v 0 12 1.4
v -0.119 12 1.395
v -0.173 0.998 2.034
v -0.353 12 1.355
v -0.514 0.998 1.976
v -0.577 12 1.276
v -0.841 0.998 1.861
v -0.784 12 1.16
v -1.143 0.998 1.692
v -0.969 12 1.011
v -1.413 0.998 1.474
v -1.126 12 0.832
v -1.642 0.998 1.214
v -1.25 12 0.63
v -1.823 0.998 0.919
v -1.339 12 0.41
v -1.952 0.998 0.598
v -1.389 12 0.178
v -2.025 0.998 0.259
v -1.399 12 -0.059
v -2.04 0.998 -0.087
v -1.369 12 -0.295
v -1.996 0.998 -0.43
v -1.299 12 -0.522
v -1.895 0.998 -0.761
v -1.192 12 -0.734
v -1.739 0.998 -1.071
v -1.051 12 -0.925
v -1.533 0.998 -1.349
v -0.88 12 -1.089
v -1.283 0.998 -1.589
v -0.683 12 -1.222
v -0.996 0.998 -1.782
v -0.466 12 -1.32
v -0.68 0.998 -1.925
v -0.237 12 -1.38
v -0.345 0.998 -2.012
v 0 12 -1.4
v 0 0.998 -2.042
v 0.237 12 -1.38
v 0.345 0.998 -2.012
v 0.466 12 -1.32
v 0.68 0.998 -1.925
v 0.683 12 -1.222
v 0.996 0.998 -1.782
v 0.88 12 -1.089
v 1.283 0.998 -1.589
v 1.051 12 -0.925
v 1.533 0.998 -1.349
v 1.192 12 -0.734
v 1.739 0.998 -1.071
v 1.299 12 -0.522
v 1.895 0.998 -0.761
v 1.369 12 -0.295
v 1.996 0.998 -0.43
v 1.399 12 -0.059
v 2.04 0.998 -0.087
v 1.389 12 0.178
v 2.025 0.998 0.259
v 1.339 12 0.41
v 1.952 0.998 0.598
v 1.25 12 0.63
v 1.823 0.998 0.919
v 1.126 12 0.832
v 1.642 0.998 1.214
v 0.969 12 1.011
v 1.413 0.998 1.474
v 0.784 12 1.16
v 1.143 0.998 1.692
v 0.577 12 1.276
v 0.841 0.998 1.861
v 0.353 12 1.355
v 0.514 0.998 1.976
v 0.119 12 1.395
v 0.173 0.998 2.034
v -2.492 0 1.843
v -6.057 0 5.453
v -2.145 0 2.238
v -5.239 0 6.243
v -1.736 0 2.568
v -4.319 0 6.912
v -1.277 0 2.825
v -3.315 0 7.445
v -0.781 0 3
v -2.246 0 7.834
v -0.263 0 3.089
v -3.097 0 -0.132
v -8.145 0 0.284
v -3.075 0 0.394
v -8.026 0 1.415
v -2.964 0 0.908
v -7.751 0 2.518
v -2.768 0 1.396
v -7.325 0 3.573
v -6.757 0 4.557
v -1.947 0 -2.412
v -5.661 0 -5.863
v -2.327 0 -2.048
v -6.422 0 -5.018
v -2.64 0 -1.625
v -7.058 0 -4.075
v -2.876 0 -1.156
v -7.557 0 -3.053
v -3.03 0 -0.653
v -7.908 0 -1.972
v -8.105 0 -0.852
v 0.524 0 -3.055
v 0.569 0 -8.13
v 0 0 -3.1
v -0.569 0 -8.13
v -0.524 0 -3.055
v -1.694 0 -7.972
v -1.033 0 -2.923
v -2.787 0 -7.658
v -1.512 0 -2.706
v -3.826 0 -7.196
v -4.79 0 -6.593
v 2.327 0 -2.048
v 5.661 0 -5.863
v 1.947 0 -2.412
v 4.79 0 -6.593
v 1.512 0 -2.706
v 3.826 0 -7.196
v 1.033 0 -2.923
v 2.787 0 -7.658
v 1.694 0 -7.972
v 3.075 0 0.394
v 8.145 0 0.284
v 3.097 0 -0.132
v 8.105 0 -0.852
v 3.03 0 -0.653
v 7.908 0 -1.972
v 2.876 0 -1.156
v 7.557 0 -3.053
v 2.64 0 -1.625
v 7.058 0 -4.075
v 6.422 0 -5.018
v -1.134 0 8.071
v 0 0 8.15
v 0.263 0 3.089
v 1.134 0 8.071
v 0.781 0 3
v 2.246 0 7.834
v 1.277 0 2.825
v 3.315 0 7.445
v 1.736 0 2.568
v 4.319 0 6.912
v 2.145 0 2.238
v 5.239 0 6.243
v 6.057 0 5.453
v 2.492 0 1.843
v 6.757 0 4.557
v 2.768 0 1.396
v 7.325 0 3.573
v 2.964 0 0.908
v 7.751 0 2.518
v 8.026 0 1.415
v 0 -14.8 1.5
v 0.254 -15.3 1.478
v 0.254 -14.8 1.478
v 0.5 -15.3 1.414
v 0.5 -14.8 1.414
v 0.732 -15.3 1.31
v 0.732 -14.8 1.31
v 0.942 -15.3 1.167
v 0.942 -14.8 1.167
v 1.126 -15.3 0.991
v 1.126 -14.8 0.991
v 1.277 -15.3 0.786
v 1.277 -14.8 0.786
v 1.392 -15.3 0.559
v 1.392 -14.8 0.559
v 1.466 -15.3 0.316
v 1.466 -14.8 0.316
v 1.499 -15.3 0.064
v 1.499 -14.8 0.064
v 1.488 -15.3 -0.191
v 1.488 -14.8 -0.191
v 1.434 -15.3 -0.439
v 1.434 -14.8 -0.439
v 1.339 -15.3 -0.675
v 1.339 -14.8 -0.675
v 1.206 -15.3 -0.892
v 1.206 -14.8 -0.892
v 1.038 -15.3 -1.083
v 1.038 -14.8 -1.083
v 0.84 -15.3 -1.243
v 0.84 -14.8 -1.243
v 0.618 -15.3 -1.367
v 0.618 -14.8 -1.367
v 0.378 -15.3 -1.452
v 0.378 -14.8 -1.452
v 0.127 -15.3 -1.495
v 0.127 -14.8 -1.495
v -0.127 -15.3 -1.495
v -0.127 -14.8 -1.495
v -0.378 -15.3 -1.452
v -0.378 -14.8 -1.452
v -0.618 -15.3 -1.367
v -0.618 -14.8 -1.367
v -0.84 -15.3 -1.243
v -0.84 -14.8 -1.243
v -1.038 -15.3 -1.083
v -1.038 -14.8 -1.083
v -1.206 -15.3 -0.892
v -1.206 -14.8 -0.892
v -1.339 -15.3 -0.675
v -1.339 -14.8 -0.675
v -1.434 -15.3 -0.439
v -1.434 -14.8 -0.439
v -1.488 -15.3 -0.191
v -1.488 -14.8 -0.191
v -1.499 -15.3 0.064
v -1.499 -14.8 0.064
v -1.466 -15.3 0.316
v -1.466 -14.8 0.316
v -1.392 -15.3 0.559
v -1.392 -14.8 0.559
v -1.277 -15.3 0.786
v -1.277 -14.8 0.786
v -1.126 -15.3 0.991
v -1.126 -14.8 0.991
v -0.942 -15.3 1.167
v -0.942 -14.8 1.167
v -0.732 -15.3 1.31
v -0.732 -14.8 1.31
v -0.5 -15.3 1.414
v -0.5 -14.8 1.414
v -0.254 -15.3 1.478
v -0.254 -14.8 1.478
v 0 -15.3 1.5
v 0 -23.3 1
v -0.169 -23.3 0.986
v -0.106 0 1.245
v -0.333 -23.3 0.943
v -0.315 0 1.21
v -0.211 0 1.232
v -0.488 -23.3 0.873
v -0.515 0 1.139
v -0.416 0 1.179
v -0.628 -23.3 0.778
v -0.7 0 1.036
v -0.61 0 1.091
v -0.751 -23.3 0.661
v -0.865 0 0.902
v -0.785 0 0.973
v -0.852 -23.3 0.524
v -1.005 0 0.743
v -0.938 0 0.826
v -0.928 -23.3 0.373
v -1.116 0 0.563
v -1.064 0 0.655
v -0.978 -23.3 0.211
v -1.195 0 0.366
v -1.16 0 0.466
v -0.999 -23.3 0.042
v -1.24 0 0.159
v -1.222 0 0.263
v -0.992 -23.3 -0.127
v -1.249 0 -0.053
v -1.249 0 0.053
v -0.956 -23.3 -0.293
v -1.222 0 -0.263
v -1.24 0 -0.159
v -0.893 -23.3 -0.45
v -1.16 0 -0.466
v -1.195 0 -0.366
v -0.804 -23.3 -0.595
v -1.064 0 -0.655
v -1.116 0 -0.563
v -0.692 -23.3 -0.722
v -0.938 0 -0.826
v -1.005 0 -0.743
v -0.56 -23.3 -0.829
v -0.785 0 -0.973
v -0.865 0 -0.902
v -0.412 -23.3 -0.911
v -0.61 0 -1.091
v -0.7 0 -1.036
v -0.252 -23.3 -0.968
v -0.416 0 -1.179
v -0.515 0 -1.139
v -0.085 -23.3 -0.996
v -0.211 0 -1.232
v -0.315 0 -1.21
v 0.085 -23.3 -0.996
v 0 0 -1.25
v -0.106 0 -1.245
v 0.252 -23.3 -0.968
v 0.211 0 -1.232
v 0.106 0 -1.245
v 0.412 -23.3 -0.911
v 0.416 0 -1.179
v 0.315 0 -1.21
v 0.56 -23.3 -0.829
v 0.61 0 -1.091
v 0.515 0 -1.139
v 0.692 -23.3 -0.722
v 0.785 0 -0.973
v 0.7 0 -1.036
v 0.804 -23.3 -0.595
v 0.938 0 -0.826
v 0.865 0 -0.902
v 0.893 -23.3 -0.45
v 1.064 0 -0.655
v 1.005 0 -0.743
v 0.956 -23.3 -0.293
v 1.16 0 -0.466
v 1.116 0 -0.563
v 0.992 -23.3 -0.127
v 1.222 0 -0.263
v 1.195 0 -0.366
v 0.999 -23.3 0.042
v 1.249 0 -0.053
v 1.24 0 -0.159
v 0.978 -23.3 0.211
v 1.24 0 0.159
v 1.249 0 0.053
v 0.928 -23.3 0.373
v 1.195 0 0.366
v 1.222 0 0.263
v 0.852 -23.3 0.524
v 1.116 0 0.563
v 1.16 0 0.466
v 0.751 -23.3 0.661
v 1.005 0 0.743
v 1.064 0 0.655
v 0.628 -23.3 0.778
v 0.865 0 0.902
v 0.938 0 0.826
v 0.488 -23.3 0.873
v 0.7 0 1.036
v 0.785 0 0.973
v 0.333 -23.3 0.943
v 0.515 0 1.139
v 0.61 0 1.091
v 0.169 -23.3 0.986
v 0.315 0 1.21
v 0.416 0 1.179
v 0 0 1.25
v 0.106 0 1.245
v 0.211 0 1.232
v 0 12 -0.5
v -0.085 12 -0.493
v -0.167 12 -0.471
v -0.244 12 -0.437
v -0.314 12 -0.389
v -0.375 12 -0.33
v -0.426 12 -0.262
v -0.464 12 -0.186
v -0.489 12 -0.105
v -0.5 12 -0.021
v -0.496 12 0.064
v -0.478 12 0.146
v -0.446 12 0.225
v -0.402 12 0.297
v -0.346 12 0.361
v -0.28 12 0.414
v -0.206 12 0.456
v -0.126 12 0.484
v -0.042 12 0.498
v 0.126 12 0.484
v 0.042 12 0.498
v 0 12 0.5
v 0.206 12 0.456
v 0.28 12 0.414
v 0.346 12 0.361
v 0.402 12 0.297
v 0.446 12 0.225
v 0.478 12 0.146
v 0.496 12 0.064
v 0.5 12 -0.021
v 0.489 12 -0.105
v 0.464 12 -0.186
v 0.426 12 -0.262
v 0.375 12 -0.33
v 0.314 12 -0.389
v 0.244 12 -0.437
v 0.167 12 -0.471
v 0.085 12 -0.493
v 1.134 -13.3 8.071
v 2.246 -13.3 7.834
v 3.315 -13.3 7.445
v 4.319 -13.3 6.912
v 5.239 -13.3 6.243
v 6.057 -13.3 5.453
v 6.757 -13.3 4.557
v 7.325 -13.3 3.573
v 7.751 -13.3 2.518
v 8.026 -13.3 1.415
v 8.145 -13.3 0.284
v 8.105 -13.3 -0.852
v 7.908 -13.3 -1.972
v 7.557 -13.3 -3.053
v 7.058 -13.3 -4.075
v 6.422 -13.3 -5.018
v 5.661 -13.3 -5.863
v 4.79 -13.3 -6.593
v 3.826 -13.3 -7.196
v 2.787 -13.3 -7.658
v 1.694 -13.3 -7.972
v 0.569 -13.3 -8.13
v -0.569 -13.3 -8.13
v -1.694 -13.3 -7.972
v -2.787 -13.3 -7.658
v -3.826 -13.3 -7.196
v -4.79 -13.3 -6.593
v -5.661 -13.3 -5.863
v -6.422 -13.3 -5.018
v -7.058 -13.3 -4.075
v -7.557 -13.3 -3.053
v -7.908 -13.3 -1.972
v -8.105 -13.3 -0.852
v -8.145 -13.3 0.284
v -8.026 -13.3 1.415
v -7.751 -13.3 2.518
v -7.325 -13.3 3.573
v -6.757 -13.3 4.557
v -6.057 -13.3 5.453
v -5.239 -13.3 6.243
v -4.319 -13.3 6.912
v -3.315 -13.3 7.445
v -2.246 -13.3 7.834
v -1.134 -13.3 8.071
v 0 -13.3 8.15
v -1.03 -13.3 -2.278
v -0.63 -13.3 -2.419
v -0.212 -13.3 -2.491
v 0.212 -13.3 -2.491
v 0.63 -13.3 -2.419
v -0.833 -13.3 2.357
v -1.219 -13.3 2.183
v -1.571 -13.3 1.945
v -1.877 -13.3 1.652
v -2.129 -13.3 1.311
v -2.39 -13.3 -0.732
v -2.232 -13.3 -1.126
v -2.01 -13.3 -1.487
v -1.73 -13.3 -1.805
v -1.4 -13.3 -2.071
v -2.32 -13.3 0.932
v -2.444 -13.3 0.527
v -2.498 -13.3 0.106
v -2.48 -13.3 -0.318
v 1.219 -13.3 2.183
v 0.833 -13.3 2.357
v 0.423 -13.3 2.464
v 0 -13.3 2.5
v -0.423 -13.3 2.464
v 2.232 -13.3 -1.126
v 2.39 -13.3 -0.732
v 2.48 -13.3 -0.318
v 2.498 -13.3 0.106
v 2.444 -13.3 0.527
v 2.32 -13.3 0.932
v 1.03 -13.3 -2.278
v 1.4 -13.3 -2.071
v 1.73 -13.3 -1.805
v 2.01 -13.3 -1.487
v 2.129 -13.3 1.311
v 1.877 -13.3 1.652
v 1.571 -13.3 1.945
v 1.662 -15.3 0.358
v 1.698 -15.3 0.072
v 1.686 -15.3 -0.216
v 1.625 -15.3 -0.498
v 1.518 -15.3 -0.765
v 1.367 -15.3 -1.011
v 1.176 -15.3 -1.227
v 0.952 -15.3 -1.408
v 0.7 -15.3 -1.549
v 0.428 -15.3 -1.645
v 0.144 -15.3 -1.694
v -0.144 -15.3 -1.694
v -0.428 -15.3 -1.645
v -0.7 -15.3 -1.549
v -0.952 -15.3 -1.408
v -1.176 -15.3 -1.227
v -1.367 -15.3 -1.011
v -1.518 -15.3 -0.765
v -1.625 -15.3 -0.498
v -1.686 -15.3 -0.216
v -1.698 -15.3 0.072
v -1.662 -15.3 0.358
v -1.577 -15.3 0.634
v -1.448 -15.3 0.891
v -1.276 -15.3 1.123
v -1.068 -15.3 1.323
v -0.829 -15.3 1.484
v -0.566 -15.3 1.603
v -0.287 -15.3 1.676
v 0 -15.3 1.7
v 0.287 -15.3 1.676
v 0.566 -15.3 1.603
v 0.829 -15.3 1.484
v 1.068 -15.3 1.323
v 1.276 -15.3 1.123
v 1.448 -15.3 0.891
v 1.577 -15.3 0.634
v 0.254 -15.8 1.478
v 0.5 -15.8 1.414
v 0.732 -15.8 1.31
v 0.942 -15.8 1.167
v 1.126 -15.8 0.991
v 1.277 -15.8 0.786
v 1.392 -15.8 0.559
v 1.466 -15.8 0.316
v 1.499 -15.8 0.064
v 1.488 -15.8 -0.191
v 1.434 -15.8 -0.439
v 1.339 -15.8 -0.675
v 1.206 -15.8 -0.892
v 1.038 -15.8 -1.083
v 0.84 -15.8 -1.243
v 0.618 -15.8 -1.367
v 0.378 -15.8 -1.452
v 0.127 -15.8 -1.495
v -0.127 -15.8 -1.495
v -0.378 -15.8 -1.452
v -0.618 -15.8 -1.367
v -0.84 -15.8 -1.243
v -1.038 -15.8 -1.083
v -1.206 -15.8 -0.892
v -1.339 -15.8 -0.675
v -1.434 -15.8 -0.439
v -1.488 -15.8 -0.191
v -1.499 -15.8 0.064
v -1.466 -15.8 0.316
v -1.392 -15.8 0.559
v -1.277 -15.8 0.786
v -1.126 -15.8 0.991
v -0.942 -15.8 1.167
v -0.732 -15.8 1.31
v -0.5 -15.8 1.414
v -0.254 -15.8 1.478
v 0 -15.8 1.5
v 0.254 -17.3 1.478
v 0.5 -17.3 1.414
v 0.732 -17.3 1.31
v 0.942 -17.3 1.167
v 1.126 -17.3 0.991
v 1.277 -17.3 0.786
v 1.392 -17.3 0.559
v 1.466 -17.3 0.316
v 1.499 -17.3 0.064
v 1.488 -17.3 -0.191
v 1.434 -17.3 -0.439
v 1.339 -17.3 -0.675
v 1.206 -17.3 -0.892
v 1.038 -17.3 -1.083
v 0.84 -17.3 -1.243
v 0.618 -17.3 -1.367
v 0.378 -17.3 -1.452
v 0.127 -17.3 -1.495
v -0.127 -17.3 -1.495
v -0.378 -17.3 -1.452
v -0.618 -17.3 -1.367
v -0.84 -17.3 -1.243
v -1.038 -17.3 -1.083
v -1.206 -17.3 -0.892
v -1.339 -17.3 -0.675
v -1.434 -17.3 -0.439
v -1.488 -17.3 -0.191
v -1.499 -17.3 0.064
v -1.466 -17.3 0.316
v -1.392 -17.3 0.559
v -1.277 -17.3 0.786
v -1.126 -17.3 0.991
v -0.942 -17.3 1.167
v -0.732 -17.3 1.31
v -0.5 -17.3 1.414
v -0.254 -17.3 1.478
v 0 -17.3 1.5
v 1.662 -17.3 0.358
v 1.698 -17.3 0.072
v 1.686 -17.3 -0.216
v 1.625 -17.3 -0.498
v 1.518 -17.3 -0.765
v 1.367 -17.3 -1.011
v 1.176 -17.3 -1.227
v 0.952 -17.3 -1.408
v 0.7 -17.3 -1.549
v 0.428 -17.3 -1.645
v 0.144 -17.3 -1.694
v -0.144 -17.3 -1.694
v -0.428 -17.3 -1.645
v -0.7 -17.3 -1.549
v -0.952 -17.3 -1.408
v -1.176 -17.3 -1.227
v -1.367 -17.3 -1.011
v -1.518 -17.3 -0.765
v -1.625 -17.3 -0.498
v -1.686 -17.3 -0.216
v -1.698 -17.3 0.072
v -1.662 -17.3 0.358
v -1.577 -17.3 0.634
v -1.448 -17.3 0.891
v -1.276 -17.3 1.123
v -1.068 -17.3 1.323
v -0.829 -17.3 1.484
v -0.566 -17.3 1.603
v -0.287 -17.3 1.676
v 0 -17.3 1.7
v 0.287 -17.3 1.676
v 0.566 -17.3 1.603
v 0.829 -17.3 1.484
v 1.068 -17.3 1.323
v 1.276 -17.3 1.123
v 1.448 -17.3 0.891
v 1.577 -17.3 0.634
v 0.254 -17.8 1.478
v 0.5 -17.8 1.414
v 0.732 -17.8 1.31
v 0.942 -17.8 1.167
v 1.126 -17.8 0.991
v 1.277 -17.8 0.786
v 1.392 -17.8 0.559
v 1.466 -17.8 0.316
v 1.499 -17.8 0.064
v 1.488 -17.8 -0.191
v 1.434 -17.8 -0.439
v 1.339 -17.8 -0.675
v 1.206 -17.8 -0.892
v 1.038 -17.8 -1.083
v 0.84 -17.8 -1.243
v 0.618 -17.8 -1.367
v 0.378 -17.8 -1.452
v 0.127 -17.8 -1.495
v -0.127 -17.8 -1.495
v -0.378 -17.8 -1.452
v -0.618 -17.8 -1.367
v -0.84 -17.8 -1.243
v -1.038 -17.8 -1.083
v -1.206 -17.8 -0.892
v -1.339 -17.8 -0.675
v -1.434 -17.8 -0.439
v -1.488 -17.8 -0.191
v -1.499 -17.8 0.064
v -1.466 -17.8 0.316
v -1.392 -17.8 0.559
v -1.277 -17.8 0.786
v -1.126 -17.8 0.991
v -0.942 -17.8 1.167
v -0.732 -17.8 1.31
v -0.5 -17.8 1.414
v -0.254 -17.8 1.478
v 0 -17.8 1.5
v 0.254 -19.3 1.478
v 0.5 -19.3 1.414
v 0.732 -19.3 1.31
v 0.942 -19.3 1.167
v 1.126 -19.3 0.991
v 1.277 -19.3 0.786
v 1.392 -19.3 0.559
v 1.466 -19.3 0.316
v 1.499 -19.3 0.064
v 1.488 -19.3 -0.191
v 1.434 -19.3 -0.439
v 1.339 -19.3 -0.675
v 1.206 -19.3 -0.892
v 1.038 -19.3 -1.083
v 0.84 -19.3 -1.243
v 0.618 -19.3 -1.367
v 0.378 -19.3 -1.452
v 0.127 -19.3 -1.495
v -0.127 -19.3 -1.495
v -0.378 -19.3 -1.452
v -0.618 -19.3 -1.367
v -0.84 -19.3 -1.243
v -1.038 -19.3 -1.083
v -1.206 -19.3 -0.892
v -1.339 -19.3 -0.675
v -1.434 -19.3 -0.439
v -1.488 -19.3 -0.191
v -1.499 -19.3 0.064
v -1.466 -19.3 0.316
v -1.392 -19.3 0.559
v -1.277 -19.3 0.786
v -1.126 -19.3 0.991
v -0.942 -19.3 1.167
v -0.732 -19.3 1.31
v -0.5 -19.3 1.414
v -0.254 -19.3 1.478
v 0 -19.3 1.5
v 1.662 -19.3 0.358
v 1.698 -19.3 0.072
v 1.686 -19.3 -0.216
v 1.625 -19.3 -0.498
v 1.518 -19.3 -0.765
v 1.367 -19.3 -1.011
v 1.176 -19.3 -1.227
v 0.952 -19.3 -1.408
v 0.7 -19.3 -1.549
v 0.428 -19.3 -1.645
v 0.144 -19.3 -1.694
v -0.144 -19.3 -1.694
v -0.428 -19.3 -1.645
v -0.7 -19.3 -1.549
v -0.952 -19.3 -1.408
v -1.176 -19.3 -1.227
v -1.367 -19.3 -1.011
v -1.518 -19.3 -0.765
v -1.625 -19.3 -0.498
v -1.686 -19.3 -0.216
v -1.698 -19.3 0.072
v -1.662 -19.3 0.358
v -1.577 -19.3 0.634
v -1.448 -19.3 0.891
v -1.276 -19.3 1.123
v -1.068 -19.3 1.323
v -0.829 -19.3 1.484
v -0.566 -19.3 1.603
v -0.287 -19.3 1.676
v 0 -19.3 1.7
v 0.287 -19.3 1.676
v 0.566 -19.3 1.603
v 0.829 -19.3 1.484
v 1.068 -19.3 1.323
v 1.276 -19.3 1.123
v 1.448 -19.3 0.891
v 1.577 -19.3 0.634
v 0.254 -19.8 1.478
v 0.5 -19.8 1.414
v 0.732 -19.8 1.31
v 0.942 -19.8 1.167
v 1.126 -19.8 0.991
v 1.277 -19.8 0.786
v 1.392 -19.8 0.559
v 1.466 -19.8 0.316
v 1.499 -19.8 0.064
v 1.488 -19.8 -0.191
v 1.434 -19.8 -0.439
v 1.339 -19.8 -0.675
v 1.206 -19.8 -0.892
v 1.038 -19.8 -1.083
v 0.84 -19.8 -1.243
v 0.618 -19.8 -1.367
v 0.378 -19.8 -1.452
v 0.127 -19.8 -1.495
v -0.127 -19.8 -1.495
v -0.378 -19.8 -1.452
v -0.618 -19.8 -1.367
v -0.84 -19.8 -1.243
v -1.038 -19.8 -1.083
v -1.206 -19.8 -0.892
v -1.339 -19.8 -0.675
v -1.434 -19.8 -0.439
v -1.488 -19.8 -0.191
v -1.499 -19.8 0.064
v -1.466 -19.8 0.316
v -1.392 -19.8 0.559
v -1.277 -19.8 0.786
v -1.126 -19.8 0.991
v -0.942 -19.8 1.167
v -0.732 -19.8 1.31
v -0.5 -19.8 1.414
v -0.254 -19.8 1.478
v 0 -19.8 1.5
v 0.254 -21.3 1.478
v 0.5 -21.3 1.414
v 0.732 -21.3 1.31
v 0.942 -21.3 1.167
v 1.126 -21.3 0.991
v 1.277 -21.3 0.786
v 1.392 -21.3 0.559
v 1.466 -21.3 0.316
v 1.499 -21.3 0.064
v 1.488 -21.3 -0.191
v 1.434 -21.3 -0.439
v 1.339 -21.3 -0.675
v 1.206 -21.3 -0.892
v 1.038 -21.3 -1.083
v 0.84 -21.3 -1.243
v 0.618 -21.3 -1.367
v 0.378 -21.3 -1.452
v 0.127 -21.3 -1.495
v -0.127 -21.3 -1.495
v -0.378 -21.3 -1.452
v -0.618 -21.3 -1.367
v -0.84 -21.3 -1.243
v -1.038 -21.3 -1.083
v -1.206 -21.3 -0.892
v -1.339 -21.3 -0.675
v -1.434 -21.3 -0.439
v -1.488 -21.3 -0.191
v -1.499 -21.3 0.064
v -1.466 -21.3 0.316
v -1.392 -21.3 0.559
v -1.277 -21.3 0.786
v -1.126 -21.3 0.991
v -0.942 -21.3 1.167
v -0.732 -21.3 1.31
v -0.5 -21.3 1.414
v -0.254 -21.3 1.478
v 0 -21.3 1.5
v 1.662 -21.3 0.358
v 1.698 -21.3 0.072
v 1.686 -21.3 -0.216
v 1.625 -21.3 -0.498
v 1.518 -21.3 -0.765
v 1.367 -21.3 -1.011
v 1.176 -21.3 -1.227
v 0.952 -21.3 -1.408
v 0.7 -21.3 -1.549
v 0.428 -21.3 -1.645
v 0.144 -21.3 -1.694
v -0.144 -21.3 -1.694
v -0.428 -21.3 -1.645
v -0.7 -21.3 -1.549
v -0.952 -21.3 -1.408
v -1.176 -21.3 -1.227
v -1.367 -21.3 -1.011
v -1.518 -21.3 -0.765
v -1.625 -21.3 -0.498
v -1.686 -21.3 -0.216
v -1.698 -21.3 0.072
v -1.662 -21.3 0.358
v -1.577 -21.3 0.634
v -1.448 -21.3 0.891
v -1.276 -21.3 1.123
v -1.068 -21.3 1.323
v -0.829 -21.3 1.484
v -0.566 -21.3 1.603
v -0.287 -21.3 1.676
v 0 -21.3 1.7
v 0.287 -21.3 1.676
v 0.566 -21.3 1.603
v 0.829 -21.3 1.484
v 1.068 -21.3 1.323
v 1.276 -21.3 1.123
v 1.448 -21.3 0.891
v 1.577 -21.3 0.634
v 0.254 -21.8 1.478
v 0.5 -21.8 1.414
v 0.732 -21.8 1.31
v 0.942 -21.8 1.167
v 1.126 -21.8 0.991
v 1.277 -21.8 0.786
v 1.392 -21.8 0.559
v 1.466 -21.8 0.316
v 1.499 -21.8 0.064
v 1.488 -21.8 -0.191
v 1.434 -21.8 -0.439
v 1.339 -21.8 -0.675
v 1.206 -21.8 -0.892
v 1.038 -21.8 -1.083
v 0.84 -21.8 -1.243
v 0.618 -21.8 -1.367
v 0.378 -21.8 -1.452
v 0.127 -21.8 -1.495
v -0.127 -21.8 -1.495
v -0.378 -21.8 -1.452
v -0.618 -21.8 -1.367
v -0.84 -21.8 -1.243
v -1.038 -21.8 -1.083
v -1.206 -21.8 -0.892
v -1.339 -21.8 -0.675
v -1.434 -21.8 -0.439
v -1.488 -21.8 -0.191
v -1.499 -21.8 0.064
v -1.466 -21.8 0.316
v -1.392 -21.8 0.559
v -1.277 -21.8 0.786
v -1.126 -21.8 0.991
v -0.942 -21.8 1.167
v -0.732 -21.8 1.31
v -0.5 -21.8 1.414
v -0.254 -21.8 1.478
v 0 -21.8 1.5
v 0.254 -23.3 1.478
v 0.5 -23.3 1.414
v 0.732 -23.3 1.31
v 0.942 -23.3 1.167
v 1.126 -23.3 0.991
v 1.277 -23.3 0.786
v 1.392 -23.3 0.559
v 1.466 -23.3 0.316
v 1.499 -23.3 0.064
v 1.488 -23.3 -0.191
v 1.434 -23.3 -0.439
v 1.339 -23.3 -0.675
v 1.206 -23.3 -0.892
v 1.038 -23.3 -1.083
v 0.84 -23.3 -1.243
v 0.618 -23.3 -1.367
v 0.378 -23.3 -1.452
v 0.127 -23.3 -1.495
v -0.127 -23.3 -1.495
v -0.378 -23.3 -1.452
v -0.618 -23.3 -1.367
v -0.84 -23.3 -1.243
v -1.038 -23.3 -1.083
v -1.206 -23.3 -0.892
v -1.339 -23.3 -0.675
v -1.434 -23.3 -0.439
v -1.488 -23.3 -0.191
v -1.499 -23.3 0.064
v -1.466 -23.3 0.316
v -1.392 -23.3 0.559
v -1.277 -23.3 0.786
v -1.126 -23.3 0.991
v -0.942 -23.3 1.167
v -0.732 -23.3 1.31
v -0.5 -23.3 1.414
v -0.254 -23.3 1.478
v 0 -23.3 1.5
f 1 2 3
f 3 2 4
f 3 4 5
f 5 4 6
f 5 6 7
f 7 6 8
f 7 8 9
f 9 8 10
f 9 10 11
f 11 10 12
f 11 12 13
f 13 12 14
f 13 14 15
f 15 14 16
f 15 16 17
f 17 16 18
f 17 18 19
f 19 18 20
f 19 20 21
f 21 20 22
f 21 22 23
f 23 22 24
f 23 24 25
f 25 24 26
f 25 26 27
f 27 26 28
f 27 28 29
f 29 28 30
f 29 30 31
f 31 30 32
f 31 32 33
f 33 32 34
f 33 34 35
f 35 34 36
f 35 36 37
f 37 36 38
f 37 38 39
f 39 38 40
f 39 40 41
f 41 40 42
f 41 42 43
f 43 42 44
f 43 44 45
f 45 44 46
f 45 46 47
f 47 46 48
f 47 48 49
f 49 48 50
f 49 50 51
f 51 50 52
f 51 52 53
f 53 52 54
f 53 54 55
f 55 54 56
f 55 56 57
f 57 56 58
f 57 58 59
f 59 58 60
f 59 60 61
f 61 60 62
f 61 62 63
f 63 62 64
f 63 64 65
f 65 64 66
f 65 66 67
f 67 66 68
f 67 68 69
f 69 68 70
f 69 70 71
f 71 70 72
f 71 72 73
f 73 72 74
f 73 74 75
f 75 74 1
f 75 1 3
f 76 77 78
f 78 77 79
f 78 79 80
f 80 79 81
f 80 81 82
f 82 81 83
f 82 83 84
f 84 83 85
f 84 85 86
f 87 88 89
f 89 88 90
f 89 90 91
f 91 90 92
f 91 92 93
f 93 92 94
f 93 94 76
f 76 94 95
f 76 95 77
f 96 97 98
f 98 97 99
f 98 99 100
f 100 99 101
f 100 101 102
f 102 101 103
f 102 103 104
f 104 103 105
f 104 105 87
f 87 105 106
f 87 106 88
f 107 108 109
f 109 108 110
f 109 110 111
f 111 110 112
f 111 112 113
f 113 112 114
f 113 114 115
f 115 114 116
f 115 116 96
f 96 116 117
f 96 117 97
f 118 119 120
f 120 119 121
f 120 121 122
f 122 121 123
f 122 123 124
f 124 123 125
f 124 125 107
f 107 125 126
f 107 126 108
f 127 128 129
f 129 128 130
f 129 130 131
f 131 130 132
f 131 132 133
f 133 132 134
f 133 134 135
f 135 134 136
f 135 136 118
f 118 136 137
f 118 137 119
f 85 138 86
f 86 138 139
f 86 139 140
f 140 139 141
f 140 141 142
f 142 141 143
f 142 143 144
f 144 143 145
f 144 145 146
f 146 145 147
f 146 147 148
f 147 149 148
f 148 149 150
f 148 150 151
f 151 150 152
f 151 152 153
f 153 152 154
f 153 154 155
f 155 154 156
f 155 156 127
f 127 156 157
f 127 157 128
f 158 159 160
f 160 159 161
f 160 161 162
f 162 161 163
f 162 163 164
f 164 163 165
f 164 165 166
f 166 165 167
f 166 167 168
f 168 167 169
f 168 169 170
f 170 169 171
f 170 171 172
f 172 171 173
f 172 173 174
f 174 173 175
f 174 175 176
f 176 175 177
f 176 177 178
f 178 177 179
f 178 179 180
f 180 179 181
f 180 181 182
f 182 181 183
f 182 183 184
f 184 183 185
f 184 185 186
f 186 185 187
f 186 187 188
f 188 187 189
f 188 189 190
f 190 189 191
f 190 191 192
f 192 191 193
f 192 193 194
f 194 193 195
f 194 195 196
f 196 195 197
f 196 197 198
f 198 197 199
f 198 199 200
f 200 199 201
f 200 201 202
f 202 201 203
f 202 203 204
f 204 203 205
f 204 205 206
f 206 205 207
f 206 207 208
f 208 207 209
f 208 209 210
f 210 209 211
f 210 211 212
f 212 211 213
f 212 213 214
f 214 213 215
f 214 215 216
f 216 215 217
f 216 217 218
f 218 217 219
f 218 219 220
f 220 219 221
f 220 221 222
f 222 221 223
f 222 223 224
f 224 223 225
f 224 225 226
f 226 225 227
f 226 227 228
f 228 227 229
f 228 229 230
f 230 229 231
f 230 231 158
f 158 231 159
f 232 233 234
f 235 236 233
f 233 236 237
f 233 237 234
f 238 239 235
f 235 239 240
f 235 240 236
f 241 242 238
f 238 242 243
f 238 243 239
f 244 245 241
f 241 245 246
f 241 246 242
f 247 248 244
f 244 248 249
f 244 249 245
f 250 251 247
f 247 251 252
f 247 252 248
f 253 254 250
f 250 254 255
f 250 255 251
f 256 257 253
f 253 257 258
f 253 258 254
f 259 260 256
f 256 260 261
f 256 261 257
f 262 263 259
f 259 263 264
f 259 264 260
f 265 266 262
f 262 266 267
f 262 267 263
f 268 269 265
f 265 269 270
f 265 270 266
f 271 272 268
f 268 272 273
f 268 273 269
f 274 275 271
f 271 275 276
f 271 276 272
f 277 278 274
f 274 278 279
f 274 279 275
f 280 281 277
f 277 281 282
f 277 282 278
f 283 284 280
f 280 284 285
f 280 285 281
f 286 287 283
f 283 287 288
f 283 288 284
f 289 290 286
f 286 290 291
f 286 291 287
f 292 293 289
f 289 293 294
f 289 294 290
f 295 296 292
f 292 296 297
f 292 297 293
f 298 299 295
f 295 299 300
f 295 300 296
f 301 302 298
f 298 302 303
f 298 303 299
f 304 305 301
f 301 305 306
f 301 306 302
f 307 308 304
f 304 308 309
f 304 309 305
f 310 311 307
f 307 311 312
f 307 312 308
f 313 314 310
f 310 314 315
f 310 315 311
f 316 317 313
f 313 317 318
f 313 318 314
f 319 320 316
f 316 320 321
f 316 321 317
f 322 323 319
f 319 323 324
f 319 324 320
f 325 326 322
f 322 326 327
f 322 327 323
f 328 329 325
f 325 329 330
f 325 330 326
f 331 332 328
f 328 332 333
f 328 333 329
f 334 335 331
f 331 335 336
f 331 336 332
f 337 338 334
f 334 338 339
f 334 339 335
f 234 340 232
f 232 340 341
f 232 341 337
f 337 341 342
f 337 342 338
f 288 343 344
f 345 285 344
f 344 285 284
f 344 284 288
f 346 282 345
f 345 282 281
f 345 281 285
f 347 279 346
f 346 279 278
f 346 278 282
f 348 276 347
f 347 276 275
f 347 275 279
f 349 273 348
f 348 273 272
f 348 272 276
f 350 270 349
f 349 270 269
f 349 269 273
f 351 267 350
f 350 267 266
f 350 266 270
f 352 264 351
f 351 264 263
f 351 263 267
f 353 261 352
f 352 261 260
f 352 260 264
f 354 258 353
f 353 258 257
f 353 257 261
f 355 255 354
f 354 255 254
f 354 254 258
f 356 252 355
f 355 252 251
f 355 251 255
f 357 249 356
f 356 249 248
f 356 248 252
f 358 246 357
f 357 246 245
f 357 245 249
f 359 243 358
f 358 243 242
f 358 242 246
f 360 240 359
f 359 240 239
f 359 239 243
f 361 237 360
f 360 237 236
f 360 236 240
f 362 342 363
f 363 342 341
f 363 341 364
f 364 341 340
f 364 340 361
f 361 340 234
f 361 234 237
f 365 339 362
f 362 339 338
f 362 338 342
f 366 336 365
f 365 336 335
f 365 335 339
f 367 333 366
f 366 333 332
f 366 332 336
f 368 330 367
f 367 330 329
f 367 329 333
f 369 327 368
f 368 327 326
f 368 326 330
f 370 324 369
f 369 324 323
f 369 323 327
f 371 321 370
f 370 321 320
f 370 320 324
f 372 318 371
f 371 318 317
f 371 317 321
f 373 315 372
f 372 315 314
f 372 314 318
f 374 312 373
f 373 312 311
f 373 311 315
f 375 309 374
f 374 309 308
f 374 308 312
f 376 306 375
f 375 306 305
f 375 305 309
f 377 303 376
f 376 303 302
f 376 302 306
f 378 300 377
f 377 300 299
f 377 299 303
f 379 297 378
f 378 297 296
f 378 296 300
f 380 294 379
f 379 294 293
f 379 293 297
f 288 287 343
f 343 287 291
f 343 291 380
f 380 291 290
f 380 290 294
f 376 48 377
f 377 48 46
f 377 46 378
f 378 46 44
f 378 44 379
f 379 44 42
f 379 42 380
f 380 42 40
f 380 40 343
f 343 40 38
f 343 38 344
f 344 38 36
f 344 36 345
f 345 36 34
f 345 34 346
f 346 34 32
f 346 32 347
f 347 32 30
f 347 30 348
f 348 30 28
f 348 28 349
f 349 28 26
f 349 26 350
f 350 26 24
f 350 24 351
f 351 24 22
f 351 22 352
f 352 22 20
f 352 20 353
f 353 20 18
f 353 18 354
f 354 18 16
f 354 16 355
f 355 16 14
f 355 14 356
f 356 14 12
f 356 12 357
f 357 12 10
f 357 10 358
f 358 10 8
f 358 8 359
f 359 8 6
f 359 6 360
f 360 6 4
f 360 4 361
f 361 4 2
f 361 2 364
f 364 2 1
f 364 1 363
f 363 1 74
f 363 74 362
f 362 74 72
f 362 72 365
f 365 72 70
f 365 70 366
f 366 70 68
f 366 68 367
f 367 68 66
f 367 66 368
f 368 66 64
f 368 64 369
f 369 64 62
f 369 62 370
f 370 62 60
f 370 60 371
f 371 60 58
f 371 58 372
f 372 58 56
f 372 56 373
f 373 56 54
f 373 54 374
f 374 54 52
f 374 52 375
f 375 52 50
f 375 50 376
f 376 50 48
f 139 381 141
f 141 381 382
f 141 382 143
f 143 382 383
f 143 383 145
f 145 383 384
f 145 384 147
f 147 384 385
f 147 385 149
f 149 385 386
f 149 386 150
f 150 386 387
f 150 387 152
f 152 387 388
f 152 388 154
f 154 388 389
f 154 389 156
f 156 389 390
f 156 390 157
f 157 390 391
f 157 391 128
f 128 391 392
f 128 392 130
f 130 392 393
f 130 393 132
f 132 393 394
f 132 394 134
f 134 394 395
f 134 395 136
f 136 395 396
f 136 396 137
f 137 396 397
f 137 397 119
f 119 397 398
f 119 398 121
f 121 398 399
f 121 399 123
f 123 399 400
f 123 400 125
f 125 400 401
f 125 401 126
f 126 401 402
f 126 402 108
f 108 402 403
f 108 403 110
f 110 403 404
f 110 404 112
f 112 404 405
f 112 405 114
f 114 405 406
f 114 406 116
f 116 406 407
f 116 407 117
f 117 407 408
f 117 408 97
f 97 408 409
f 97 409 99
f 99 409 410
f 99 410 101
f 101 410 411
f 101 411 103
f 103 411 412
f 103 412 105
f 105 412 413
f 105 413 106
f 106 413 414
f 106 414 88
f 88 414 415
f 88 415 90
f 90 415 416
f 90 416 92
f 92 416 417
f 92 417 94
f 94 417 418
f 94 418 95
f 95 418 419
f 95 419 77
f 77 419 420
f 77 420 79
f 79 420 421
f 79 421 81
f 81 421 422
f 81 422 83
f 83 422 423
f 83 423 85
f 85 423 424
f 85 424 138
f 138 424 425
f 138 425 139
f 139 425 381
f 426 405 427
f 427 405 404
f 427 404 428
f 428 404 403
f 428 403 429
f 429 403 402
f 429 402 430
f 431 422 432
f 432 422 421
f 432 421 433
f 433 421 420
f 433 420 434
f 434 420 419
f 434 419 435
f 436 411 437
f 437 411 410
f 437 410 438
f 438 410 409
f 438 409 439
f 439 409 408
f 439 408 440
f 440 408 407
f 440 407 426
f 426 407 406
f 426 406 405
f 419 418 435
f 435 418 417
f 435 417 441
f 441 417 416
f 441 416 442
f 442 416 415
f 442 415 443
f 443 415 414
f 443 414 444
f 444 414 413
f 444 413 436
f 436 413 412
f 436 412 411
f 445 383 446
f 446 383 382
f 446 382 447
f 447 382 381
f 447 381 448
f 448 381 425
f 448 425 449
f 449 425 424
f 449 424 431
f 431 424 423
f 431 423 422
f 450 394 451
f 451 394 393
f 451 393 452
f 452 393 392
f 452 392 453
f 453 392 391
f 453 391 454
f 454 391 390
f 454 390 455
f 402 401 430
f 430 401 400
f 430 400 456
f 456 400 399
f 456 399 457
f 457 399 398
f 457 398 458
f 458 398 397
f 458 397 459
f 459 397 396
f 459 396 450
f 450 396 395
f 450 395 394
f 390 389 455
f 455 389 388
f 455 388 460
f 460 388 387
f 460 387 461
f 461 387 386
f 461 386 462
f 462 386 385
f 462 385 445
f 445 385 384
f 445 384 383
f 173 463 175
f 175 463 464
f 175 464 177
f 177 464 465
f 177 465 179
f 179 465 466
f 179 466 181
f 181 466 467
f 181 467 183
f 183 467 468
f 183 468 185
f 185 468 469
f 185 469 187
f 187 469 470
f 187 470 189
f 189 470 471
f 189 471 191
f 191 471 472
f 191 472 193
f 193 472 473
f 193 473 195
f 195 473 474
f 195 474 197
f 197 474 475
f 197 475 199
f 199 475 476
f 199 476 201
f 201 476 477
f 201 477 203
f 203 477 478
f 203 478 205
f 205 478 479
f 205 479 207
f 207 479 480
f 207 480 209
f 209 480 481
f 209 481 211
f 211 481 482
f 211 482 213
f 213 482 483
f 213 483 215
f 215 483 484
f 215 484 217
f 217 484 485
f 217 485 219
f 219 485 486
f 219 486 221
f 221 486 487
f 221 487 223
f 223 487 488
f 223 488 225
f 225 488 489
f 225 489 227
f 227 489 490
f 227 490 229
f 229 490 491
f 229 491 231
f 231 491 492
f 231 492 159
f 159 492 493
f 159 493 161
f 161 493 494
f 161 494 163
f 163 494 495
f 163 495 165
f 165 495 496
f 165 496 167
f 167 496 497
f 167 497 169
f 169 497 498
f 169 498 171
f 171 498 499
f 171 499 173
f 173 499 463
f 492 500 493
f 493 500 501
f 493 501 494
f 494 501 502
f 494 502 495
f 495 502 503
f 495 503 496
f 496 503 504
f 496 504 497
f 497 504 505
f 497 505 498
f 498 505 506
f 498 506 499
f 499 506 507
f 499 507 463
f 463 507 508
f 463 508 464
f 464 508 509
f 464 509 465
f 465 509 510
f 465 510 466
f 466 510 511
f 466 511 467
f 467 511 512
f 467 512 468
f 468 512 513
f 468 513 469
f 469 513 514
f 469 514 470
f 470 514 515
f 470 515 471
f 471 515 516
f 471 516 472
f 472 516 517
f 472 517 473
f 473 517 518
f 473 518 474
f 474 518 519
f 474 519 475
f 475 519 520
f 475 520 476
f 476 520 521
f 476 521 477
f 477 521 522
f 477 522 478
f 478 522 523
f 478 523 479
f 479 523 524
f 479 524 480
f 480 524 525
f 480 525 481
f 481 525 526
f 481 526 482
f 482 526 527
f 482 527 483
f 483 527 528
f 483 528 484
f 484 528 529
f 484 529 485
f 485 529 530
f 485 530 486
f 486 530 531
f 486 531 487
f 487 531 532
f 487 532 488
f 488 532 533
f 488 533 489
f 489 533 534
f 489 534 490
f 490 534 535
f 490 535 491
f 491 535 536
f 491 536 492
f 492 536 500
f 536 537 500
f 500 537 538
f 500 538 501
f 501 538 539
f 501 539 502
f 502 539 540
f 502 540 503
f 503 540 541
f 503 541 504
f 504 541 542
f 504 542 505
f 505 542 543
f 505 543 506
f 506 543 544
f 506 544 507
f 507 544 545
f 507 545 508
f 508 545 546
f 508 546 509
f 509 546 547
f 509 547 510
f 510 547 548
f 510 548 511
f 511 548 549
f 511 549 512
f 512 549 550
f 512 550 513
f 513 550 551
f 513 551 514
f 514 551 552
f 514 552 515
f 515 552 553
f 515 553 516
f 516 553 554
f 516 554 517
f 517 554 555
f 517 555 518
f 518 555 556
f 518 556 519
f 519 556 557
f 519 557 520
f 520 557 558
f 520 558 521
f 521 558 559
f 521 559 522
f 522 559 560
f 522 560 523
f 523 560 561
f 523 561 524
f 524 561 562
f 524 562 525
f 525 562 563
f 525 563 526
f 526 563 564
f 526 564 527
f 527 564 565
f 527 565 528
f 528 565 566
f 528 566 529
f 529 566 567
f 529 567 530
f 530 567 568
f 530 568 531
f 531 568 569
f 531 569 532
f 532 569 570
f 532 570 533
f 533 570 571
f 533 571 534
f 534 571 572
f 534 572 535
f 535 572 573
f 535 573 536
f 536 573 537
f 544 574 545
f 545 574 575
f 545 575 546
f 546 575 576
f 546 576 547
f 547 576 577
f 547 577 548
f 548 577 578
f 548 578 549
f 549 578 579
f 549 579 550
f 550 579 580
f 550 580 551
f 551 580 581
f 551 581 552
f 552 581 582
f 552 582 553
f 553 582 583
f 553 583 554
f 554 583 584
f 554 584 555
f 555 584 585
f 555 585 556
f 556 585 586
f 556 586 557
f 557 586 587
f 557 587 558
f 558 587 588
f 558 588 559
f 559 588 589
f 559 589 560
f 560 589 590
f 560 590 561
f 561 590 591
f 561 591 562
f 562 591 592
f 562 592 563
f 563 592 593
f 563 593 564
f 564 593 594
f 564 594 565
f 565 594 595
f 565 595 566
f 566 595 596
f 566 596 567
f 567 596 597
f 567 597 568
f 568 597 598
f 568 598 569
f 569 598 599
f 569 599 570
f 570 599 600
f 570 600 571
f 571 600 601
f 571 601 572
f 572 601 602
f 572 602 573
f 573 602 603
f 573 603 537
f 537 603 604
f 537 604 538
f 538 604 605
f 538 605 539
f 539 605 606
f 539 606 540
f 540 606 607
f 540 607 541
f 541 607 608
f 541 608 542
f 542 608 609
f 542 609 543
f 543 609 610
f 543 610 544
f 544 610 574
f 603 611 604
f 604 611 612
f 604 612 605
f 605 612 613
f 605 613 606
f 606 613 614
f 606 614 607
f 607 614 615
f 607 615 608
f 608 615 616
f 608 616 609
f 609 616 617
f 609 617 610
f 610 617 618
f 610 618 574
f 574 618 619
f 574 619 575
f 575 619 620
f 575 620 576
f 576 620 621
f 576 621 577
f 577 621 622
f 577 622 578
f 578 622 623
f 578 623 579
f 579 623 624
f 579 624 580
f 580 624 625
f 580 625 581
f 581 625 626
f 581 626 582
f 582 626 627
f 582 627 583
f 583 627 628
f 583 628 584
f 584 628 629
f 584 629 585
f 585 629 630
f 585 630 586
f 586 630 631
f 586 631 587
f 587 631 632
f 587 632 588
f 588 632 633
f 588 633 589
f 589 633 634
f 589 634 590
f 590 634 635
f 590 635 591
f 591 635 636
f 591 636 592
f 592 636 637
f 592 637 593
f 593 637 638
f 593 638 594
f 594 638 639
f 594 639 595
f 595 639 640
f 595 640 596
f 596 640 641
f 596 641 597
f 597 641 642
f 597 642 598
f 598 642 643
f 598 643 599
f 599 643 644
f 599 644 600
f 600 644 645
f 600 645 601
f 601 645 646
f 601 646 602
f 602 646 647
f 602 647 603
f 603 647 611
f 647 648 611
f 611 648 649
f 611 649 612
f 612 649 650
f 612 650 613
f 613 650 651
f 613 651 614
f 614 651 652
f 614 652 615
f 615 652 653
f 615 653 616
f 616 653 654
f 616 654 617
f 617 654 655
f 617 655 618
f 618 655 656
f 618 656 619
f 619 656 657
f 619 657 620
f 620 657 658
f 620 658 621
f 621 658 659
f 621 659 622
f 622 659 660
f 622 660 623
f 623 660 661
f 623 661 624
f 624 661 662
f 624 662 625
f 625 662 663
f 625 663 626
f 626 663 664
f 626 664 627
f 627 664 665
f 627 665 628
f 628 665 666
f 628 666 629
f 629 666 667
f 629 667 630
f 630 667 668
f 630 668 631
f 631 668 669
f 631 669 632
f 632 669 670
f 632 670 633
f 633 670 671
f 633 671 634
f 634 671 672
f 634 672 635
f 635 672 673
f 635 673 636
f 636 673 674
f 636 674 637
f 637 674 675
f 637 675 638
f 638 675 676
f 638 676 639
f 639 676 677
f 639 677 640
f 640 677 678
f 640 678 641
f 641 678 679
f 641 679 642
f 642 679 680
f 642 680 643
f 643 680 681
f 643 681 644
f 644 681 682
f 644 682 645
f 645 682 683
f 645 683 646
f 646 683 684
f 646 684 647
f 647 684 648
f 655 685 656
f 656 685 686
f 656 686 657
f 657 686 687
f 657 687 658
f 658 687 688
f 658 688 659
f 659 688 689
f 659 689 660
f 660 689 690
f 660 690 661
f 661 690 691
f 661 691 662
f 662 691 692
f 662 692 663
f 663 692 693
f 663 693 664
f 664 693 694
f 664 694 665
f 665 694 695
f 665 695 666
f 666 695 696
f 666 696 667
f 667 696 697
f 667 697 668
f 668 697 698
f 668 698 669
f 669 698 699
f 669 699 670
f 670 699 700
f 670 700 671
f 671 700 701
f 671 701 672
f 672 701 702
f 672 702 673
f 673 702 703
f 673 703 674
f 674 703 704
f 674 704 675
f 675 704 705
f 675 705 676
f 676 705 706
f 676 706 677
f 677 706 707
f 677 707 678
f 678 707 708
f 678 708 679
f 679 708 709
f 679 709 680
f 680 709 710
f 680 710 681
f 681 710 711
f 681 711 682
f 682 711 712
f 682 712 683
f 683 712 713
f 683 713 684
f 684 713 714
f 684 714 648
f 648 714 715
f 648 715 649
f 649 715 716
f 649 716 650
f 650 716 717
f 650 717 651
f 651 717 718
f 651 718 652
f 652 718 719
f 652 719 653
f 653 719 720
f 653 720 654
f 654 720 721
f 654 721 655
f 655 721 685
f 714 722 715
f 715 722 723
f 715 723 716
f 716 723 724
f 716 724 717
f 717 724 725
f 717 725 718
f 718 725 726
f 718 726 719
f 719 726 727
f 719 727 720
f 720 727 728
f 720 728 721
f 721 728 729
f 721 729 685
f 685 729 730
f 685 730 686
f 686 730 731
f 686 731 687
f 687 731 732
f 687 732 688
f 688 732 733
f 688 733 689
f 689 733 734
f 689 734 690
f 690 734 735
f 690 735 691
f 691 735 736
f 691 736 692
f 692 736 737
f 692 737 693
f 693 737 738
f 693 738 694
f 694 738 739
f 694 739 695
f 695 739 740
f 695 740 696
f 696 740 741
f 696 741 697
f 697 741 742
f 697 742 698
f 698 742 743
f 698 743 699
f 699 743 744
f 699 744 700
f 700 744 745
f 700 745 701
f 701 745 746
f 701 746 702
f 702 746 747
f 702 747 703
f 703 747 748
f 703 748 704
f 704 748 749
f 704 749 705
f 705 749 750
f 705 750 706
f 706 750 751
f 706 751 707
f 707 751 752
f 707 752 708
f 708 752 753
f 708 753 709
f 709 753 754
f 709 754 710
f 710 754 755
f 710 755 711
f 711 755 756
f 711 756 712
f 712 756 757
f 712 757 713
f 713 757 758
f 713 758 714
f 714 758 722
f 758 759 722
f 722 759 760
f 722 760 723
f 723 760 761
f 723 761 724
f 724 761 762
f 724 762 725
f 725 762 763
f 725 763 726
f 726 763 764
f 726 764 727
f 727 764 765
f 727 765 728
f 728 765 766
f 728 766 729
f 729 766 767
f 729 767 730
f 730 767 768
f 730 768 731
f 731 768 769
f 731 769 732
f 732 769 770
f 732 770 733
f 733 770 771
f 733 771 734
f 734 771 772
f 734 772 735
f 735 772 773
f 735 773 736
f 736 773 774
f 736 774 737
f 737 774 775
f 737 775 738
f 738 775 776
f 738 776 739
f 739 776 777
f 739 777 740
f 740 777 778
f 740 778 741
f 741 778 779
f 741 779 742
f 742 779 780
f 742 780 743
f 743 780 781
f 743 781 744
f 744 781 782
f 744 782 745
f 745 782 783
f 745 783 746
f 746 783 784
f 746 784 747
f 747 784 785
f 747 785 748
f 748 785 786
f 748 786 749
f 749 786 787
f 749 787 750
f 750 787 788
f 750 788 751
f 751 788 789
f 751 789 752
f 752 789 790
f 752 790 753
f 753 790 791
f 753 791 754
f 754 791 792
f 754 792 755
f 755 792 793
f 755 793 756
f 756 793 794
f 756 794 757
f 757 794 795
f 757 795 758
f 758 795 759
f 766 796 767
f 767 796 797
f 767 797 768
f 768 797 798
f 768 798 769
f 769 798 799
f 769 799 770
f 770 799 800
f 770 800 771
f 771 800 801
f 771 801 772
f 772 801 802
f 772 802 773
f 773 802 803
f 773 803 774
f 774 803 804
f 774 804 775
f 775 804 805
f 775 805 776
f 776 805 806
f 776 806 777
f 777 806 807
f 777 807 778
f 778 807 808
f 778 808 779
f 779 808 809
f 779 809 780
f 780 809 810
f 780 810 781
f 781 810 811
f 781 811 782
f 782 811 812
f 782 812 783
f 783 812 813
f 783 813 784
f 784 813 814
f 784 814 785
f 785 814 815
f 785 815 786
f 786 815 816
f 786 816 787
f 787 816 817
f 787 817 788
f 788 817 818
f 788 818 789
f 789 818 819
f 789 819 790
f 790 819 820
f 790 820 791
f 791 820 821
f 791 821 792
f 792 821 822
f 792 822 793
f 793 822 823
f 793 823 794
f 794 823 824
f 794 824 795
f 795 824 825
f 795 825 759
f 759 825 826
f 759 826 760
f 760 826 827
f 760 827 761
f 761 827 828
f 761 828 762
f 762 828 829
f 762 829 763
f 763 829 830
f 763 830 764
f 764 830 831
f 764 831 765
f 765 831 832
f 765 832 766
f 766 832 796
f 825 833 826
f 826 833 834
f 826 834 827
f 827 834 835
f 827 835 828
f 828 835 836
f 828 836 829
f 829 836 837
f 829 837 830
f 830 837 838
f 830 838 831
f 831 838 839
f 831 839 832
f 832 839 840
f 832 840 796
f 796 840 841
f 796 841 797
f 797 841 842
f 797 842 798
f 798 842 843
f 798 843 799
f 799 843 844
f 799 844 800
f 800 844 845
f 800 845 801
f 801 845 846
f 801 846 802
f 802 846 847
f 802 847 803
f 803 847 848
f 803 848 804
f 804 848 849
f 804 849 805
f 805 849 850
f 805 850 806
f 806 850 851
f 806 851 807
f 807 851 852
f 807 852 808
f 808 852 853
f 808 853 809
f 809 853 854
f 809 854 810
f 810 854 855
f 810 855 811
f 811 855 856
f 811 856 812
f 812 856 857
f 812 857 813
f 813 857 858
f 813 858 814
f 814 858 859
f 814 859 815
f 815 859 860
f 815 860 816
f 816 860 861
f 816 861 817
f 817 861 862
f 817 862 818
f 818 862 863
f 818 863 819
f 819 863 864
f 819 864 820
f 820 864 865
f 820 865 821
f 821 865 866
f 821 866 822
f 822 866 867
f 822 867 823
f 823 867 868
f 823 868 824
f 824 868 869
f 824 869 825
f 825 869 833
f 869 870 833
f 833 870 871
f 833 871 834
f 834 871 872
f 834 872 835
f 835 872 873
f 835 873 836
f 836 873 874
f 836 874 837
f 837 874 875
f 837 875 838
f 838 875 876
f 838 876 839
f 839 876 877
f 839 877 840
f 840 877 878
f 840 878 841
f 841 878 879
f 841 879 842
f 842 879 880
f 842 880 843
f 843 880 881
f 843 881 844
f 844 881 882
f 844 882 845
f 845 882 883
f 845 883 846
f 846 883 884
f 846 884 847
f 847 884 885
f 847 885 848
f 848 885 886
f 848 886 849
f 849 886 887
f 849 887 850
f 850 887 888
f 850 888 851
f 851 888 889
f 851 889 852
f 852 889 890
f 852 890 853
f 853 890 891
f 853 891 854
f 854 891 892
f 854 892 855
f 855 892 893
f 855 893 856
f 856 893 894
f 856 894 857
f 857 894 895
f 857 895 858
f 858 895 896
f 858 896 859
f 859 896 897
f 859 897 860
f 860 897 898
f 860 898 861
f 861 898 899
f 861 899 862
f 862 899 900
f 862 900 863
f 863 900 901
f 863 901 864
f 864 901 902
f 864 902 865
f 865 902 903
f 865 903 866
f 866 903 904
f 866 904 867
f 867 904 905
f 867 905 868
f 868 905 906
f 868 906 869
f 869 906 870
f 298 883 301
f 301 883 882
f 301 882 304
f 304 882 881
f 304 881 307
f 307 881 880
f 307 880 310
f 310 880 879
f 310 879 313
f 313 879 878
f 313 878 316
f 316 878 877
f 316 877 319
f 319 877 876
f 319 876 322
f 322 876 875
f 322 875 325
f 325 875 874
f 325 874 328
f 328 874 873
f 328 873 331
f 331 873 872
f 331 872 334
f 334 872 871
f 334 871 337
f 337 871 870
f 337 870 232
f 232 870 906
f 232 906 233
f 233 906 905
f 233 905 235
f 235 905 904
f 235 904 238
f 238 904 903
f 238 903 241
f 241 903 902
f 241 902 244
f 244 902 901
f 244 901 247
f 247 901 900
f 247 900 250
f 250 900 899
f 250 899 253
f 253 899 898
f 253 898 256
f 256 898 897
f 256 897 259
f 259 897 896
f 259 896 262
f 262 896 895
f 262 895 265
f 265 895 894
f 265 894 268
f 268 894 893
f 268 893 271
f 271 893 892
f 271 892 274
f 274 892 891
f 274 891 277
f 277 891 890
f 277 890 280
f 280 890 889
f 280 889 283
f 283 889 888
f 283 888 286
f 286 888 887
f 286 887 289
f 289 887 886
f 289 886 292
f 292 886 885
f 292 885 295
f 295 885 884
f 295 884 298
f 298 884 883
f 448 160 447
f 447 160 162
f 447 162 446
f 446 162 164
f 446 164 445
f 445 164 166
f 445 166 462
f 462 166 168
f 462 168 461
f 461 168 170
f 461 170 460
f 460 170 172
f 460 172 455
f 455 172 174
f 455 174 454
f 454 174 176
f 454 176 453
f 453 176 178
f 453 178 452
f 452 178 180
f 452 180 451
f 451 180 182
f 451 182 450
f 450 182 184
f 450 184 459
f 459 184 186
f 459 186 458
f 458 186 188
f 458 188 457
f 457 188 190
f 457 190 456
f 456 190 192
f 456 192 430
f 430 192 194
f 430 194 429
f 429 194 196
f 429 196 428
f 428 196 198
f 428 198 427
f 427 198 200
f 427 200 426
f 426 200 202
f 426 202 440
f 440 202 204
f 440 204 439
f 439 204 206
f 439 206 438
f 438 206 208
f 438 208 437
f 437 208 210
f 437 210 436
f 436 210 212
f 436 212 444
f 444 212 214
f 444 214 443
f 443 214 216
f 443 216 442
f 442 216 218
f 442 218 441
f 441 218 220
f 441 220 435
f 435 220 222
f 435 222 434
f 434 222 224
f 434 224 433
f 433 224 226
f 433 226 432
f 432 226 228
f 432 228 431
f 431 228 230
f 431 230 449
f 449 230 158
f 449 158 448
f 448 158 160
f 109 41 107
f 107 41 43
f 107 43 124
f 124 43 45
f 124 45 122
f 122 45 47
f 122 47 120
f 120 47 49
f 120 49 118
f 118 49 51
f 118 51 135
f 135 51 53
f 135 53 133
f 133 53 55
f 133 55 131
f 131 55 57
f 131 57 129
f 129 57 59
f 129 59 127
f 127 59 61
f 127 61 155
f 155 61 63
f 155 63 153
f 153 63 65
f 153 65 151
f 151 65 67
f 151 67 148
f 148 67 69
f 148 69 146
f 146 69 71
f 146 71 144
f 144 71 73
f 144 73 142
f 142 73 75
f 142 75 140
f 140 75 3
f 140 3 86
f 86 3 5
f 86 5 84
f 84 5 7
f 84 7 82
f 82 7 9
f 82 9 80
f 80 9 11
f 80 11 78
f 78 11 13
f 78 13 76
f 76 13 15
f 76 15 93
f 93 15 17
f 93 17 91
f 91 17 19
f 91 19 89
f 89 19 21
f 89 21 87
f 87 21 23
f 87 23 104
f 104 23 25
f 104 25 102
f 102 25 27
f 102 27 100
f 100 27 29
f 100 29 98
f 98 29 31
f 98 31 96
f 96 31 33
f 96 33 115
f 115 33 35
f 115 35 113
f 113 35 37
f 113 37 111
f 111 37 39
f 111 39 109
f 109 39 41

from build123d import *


with BuildPart() as part:
    # Esboço1 → Revolução1 (revolve)
    with BuildSketch(Plane.XY, mode=Mode.PRIVATE) as revolu_o1_sk:
        Polygon((2.1, 0), (8.15, 0), (8.15, -13.3), (1.5, -13.3), (1.5, -15.3), (1.7, -15.3), (1.5, -15.8), (1.5, -17.3), (1.7, -17.3), (1.5, -17.8), (1.5, -19.3), (1.7, -19.3), (1.5, -19.8), (1.5, -21.3), (1.7, -21.3), (1.5, -21.8), (1.5, -23.3), (1, -23.3), (1.25, 0), (0.5, 12), (1.4, 12), align=None)
    revolve(revolu_o1_sk.sketch.rotate(Axis((0, 23.058079528, 0), (0, -1, 0)), 90), axis=Axis((0, 23.058079528, 0), (0, -1, 0)))

    # Esboço2 → Revolução2 (revolve)
    with BuildSketch(Plane.XY, mode=Mode.PRIVATE) as revolu_o2_sk:
        Polygon((1.5, -14.8), (2.5, -13.3), (1.5, -13.3), align=None)
        Polygon((2.1, 0), (2.041765662, 0.998302941), (3.1, 0), align=None)
    revolve(revolu_o2_sk.sketch.rotate(Axis((0, 0.658037097, 0), (0, -1, 0)), 270), axis=Axis((0, 0.658037097, 0), (0, -1, 0)))


solid = part.part
